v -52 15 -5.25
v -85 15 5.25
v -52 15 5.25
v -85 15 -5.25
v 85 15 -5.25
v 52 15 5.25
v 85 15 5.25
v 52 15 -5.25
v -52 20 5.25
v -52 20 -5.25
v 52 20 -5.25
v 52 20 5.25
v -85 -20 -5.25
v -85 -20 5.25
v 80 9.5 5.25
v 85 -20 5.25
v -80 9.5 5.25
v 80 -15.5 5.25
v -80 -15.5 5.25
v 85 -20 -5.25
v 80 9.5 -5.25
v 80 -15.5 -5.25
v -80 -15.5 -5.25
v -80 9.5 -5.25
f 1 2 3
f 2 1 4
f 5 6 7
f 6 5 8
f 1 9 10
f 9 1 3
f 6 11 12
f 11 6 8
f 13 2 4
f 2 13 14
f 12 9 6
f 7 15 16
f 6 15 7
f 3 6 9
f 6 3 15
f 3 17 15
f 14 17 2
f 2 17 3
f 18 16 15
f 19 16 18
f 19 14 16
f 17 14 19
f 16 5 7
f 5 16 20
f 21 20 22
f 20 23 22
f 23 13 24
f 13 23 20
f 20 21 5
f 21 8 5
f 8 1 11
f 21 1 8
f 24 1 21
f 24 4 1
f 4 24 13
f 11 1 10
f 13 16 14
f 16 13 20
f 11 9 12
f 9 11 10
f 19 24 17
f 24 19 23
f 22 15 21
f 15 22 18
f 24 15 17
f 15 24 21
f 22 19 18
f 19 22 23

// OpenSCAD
difference(){
difference(){
translate([0, 0, 0 ])   cube([170 , 40,10.5 ] ,true );
difference(){    
translate([0, 18, 0 ])   cube([175 , 6,12 ] ,true );
translate([0, 18, 0 ])   cube([104 , 6,12 ] ,true );
}
}    
translate([0, -3, 0 ])   cube([160 , 25,12 ] ,true );
}
